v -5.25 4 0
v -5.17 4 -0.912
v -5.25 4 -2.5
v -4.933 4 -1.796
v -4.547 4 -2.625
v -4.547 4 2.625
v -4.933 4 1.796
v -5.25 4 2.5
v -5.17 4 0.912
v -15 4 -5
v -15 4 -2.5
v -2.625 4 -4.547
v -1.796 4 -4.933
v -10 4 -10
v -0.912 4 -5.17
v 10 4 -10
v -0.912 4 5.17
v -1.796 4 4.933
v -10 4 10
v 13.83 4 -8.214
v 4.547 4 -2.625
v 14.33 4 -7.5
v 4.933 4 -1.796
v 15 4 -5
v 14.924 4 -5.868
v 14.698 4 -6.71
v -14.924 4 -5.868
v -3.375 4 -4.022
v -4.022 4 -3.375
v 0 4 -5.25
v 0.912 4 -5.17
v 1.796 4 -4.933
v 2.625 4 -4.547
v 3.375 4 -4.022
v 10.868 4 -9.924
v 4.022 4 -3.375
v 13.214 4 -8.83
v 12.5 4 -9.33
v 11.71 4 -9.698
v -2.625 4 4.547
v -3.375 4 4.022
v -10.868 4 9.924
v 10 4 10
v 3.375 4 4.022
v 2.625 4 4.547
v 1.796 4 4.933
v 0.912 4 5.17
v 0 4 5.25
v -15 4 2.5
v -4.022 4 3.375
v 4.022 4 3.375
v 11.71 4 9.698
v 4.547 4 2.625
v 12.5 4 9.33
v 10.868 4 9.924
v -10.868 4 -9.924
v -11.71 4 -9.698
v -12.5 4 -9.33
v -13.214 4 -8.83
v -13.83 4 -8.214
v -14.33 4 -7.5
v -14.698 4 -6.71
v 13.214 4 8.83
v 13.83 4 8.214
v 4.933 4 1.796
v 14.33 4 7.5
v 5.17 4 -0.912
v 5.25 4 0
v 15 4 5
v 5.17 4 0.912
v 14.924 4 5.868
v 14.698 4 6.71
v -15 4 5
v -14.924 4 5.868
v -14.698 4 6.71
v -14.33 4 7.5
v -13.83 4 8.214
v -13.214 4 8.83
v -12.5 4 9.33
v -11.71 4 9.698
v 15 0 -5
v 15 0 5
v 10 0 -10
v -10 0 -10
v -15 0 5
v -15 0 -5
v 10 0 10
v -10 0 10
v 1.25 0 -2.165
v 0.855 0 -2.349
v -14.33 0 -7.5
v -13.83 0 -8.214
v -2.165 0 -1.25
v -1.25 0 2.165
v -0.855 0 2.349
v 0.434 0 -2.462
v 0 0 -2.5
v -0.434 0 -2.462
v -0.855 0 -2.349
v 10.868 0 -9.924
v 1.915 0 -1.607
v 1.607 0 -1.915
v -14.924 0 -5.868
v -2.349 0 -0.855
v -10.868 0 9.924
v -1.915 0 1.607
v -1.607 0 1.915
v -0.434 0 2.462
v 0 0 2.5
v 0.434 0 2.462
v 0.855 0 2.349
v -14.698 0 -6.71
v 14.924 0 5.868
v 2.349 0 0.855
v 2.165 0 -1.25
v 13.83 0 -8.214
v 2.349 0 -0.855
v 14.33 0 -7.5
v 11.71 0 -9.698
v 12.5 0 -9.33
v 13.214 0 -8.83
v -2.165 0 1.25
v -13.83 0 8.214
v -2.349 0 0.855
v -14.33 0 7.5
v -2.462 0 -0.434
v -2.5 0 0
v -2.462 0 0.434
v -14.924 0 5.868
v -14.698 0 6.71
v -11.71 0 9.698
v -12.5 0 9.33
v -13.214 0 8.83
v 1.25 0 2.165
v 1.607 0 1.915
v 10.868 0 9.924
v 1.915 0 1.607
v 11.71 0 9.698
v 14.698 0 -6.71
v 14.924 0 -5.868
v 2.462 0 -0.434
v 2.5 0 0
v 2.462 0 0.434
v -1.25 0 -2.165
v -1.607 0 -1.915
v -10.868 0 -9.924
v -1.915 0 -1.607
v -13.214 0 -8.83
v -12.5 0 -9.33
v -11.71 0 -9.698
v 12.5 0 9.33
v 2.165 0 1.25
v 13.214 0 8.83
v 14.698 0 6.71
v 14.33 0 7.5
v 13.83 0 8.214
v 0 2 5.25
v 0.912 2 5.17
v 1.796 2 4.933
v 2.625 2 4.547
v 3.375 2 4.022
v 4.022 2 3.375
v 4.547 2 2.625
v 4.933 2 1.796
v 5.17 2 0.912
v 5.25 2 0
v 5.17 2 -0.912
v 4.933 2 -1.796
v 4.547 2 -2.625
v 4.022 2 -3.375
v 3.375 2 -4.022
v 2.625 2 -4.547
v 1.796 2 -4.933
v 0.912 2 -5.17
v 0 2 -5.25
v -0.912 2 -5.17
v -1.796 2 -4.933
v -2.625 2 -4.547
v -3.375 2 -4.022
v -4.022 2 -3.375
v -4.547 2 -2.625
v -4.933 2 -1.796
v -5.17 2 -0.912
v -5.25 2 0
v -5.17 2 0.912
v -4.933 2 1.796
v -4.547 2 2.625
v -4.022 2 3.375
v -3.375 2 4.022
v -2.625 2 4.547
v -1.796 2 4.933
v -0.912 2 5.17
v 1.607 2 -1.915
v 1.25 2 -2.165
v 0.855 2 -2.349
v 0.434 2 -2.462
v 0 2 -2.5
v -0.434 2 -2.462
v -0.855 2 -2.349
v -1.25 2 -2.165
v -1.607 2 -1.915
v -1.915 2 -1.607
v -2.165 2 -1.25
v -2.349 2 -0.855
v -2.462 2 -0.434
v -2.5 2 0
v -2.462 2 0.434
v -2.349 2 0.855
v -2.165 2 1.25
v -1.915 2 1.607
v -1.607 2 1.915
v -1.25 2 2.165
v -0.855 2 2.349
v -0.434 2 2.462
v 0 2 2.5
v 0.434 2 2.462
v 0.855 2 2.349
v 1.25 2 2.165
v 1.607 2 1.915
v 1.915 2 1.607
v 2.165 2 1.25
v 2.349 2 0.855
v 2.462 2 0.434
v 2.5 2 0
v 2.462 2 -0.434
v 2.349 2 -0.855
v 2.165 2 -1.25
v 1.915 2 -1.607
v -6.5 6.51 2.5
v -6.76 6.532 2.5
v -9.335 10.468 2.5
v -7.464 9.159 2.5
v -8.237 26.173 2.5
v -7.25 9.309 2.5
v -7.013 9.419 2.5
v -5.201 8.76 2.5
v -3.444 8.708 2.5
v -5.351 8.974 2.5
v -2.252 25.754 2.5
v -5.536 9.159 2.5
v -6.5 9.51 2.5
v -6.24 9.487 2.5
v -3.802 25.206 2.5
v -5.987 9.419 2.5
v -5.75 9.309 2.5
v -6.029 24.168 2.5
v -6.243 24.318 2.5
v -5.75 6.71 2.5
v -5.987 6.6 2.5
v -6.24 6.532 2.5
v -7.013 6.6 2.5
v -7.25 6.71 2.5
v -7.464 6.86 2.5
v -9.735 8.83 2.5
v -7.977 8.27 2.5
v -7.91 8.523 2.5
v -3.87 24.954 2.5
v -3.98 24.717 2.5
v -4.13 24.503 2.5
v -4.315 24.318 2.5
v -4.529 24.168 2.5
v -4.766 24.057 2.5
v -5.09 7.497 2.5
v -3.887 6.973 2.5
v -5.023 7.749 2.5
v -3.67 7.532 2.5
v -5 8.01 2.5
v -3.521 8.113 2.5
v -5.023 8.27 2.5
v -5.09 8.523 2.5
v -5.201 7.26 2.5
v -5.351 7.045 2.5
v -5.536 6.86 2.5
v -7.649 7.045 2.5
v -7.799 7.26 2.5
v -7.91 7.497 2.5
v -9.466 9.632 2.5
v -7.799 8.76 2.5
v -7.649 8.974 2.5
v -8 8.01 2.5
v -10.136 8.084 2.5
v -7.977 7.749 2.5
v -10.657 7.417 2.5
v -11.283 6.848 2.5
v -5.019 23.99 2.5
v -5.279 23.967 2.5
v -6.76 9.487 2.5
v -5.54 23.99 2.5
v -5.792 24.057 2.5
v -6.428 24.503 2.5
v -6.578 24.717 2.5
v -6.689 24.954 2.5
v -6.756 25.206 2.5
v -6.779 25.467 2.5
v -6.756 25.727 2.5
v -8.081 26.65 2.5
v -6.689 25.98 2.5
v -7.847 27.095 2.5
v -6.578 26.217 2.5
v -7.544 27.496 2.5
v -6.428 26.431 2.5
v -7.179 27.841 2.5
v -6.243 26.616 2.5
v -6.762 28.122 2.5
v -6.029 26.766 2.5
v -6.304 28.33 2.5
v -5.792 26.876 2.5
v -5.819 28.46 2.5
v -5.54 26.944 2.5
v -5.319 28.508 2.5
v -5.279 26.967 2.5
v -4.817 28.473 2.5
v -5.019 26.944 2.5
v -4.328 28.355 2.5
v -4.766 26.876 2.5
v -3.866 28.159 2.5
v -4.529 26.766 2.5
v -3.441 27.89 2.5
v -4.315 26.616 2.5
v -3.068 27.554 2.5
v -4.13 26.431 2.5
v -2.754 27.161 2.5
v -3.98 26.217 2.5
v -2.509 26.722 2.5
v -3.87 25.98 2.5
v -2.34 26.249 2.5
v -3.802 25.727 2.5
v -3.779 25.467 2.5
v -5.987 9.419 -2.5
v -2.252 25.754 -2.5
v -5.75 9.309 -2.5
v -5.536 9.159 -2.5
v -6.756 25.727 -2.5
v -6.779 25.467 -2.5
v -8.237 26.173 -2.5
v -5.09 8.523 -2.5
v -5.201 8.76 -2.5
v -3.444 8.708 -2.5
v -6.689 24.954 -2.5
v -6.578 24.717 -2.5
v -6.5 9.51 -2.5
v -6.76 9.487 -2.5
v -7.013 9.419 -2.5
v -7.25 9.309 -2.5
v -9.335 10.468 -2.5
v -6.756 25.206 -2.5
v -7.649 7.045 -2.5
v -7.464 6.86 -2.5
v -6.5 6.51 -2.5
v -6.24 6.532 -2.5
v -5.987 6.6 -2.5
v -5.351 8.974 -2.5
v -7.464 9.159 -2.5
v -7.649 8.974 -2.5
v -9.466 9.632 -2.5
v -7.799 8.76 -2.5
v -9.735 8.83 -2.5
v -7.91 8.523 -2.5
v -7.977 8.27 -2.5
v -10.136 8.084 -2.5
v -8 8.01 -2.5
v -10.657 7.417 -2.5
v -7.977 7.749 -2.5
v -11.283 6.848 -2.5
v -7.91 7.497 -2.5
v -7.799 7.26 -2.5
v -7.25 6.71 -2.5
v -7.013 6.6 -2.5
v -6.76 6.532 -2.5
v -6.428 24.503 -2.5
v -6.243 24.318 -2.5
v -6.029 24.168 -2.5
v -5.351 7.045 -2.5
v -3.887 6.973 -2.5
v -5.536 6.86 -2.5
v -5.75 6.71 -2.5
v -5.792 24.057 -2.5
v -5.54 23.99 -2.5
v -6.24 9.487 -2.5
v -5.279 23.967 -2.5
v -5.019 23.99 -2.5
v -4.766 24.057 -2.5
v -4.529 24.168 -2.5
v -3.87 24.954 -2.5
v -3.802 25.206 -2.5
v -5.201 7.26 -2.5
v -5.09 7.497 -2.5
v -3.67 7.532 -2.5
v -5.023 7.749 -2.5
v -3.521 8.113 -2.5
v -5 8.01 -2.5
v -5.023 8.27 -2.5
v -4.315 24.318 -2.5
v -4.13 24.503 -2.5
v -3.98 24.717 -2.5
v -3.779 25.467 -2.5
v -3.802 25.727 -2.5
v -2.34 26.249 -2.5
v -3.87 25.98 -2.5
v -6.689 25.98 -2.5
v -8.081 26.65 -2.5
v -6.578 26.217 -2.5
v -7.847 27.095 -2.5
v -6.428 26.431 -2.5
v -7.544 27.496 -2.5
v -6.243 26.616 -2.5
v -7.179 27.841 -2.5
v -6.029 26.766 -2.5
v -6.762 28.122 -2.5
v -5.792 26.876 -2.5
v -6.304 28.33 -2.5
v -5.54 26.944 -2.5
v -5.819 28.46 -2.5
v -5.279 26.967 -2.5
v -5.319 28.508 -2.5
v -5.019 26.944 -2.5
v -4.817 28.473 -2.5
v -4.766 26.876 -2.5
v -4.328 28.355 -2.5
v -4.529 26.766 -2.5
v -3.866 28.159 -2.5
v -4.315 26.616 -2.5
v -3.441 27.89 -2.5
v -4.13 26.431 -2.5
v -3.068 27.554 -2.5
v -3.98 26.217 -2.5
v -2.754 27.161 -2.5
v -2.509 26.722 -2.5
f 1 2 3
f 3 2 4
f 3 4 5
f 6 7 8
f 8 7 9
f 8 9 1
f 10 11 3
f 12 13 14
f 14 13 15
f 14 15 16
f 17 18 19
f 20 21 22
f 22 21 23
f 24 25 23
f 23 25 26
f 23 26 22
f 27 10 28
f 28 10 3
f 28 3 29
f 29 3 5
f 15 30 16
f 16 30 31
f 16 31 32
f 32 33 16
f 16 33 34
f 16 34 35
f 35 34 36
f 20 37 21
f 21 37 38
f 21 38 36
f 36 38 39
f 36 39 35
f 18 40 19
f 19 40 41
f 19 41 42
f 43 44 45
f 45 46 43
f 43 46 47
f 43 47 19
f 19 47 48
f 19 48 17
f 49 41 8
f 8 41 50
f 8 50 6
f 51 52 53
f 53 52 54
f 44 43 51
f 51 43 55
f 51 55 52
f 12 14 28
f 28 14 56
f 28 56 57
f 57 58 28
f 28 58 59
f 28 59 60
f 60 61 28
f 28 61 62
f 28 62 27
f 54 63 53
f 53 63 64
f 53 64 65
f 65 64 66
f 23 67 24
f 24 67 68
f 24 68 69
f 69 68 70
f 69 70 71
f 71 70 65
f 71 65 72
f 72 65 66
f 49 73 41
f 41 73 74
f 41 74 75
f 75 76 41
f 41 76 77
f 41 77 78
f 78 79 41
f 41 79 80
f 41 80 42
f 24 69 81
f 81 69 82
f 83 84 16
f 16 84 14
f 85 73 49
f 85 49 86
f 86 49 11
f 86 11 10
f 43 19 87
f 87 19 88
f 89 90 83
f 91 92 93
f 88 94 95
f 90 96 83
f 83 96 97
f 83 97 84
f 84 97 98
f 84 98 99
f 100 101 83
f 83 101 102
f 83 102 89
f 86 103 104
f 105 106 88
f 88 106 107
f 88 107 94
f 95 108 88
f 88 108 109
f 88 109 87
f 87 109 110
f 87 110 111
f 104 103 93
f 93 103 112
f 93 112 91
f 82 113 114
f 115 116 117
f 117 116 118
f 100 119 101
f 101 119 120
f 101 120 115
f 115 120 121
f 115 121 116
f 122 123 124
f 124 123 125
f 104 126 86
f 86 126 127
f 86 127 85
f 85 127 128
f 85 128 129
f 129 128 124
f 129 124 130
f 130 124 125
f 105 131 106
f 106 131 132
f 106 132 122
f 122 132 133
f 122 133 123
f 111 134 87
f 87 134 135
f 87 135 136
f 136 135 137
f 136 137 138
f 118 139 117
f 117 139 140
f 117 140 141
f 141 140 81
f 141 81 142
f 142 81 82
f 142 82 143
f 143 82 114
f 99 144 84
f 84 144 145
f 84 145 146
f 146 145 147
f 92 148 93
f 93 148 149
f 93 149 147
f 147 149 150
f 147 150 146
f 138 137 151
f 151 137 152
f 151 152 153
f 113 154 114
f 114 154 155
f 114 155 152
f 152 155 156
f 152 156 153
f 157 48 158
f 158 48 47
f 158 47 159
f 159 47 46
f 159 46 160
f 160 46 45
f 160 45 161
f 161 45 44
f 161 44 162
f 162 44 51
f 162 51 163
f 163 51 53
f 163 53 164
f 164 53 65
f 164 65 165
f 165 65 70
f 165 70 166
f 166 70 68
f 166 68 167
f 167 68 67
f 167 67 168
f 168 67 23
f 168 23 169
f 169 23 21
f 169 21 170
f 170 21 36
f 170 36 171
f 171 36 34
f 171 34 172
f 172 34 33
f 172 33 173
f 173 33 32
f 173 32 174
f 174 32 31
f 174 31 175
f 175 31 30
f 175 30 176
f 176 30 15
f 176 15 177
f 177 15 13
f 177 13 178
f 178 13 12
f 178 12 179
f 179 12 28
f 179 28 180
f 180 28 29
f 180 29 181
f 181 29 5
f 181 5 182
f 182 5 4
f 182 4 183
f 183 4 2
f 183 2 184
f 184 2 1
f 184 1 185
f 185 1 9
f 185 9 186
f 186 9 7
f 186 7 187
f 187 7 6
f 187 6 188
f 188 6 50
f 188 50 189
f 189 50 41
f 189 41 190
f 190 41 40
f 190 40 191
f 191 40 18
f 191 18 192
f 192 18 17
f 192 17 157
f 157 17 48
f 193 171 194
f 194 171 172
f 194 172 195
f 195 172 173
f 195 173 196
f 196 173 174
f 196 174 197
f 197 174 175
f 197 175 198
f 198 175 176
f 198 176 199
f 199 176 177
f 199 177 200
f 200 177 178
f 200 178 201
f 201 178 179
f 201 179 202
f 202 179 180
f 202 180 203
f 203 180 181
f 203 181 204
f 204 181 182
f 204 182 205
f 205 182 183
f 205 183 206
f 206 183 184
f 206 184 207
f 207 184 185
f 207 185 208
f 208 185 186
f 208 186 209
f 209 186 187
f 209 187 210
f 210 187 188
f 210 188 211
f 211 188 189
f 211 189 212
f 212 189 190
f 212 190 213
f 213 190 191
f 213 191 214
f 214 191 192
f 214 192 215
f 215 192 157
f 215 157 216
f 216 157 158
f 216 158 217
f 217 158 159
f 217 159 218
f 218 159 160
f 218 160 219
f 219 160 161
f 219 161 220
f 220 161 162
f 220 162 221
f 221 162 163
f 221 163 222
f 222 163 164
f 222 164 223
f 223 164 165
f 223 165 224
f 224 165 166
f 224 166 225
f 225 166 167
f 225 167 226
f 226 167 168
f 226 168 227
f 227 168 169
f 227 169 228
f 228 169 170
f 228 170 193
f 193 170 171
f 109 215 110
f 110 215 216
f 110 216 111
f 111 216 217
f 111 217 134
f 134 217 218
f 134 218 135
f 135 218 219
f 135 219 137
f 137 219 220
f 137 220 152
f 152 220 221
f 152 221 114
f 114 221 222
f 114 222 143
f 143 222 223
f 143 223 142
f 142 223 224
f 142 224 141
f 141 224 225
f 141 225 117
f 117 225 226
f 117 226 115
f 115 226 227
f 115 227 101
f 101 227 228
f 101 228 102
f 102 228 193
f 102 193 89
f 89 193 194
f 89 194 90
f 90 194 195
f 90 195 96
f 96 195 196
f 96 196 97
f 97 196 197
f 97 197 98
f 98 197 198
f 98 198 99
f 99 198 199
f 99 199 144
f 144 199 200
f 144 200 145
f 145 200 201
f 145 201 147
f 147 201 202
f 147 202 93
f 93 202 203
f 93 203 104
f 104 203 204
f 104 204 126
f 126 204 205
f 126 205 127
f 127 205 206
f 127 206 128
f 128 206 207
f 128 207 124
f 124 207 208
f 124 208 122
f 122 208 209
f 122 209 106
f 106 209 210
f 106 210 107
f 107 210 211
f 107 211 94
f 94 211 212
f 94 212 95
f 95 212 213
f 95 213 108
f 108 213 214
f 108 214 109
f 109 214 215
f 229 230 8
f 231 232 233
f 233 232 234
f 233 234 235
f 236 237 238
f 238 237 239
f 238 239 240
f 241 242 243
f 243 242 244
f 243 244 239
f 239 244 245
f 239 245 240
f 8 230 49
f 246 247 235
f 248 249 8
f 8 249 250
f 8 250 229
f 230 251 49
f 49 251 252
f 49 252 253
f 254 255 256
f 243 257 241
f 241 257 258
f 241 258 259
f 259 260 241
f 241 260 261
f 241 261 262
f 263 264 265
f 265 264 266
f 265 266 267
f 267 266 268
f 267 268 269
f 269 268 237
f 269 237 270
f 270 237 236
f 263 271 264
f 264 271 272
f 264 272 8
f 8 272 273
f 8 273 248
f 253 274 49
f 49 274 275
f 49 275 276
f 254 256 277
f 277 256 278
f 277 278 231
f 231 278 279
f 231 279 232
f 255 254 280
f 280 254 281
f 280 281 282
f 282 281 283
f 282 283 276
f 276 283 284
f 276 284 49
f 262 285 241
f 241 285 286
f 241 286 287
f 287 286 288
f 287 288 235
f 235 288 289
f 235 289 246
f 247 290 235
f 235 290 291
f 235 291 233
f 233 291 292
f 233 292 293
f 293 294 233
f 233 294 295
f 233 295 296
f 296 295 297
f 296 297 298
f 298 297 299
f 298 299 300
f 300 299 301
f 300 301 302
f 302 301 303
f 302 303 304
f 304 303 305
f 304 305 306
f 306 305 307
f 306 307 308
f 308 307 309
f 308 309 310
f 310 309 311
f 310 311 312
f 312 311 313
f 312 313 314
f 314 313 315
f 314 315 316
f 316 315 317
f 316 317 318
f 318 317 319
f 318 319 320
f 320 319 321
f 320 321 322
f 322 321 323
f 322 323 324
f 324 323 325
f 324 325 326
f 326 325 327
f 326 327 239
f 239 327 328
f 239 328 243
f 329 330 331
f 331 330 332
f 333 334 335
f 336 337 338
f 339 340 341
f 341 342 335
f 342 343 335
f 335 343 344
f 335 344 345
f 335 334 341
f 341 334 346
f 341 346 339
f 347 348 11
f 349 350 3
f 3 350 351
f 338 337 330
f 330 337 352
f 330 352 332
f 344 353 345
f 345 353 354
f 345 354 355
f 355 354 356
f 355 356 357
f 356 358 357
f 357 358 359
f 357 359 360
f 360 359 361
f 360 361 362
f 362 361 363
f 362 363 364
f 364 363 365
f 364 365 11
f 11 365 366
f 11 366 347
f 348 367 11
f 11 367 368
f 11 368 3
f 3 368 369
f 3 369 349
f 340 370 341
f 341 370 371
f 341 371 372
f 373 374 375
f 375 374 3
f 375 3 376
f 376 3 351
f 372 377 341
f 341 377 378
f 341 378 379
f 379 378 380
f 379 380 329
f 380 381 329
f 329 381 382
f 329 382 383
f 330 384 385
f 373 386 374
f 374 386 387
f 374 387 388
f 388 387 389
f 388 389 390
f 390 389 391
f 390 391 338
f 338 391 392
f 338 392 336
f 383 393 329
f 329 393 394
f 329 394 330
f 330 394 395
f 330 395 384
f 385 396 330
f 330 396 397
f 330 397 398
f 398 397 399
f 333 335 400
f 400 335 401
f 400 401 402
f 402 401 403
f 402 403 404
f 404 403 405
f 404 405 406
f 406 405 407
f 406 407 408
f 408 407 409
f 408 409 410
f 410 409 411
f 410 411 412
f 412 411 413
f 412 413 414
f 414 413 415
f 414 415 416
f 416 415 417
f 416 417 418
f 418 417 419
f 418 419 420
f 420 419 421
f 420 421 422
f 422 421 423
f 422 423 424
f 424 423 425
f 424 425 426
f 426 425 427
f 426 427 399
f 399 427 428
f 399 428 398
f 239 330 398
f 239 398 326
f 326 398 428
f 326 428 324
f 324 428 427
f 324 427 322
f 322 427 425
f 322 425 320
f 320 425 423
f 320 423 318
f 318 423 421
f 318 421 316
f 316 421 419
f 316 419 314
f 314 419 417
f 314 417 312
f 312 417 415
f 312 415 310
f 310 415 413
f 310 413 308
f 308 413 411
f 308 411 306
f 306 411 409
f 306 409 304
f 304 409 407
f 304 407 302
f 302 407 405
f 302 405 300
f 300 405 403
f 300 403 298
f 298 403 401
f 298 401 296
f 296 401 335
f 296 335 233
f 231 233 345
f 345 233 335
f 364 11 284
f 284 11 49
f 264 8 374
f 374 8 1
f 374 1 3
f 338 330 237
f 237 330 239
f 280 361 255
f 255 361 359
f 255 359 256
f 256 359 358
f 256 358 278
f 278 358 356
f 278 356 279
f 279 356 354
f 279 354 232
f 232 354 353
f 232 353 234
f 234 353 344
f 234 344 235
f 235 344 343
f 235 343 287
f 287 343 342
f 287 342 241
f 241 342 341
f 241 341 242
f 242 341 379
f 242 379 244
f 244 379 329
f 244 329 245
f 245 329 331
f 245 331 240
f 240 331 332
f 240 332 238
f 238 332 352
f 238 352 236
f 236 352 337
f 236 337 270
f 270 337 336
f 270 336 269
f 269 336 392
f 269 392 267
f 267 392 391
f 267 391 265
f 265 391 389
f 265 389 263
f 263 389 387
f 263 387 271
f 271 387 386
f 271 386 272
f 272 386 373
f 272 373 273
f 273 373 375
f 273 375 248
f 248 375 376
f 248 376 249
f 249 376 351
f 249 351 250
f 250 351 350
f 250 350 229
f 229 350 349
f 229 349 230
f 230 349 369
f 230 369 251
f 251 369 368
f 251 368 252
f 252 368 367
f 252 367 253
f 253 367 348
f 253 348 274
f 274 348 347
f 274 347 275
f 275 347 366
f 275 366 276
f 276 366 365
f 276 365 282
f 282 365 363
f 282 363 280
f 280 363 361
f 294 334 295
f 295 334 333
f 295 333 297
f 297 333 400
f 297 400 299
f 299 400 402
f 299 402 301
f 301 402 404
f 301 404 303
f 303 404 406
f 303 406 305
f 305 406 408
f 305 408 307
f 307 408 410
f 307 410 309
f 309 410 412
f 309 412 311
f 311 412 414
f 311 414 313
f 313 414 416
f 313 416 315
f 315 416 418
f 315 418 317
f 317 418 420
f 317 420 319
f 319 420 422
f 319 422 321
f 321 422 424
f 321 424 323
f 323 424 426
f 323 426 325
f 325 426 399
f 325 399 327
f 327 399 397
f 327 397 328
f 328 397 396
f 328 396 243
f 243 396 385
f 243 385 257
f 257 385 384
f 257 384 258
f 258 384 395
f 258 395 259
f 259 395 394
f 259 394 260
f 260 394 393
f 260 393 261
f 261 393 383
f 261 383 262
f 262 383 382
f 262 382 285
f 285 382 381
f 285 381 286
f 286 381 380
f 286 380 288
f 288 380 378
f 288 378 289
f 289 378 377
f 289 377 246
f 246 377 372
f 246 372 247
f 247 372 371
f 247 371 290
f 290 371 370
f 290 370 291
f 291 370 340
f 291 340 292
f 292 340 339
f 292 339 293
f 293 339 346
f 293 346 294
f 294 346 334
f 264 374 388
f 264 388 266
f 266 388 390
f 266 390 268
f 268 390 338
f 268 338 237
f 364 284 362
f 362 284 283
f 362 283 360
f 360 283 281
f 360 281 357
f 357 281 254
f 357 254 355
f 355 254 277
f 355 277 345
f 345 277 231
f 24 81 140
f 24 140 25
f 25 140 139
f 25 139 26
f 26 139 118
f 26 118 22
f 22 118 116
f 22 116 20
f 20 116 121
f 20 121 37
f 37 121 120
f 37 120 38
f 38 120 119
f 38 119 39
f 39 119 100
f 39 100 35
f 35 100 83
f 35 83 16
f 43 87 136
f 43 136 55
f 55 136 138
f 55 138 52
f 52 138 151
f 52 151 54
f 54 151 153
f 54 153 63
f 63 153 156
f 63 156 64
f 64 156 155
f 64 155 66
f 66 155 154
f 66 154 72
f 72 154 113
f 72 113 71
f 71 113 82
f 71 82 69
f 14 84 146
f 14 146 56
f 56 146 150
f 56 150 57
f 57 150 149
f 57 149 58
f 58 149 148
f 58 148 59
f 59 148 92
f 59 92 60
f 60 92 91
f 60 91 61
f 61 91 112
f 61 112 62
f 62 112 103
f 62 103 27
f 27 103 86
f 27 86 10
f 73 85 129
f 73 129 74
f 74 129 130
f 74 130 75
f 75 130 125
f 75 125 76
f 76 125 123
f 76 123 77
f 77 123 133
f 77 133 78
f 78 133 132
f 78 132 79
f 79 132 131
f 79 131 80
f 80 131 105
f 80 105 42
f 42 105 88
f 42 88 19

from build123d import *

# Parameters (mm, degrees)
SKETCH1_W           = 30
SKETCH1_H           = 20
BOSS_EXTRUDE1_DEPTH = 4
SKETCH2_R           = 5.25
CUT_EXTRUDE1_DEPTH  = 2
SKETCH3_R           = 2.5
CUT_EXTRUDE2_DEPTH  = 5
SKETCH4_R           = 1.5
BOSS_EXTRUDE2_DEPTH = 2.5
FILLET1_R           = 5
FILLET2_R           = 5


with BuildPart() as part:
    # Sketch1 → Boss-Extrude1 (new body)
    with BuildSketch(Plane(origin=(0, 0, 0), x_dir=(1, 0, 0), z_dir=(0, 1, 0))):
        Rectangle(SKETCH1_W, SKETCH1_H)
    extrude(amount=BOSS_EXTRUDE1_DEPTH)

    # Sketch2 → Cut-Extrude1 (cut)
    with BuildSketch(Plane(origin=(0, 4, 0), x_dir=(1, 0, 0), z_dir=(0, 1, 0))):
        Circle(SKETCH2_R)
    extrude(amount=-CUT_EXTRUDE1_DEPTH, mode=Mode.SUBTRACT)

    # Sketch3 → Cut-Extrude2 (cut, through all)
    with BuildSketch(Plane(origin=(0, 4, 0), x_dir=(1, 0, 0), z_dir=(0, 1, 0))):
        Circle(SKETCH3_R)
    extrude(amount=-CUT_EXTRUDE2_DEPTH, mode=Mode.SUBTRACT)

    # Sketch4 → Boss-Extrude2 (add, symmetric)
    with BuildSketch(Plane.XY):
        with BuildLine():
            Line((-15, 4), (-9.492692151, 8.218800623))
            Line((-9.492692151, 8.218800623), (-8.237245547, 26.172523512))
            ThreePointArc((-8.237245547, 26.172523512), (-5.067133546, 28.50047615), (-2.251861245, 25.75398467))
            Line((-2.251861245, 25.75398467), (-3.507307849, 7.800261781))
            Line((-3.507307849, 7.800261781), (-5.25, 4))
            Line((-5.25, 4), (-15, 4))
        make_face()
        with Locations((-6.5, 8.009531202)):
            Circle(SKETCH4_R, mode=Mode.SUBTRACT)
        with Locations((-5.279261709, 25.466902082)):
            Circle(SKETCH4_R, mode=Mode.SUBTRACT)
    extrude(amount=BOSS_EXTRUDE2_DEPTH, both=True)

    # Fillet1
    fillet1_edges = [part.edges().sort_by_distance(p)[0] for p in [
        (-9.492692151, 8.218800623, 0),
        (-3.507307849, 7.800261781, 0),
    ]]
    fillet(fillet1_edges, radius=FILLET1_R)

    # Fillet2
    fillet2_edges = [part.edges().sort_by_distance(p)[0] for p in [
        (15, 2, 10),
        (-15, 2, 10),
        (-15, 2, -10),
        (15, 2, -10),
    ]]
    fillet(fillet2_edges, radius=FILLET2_R)


solid = part.part
